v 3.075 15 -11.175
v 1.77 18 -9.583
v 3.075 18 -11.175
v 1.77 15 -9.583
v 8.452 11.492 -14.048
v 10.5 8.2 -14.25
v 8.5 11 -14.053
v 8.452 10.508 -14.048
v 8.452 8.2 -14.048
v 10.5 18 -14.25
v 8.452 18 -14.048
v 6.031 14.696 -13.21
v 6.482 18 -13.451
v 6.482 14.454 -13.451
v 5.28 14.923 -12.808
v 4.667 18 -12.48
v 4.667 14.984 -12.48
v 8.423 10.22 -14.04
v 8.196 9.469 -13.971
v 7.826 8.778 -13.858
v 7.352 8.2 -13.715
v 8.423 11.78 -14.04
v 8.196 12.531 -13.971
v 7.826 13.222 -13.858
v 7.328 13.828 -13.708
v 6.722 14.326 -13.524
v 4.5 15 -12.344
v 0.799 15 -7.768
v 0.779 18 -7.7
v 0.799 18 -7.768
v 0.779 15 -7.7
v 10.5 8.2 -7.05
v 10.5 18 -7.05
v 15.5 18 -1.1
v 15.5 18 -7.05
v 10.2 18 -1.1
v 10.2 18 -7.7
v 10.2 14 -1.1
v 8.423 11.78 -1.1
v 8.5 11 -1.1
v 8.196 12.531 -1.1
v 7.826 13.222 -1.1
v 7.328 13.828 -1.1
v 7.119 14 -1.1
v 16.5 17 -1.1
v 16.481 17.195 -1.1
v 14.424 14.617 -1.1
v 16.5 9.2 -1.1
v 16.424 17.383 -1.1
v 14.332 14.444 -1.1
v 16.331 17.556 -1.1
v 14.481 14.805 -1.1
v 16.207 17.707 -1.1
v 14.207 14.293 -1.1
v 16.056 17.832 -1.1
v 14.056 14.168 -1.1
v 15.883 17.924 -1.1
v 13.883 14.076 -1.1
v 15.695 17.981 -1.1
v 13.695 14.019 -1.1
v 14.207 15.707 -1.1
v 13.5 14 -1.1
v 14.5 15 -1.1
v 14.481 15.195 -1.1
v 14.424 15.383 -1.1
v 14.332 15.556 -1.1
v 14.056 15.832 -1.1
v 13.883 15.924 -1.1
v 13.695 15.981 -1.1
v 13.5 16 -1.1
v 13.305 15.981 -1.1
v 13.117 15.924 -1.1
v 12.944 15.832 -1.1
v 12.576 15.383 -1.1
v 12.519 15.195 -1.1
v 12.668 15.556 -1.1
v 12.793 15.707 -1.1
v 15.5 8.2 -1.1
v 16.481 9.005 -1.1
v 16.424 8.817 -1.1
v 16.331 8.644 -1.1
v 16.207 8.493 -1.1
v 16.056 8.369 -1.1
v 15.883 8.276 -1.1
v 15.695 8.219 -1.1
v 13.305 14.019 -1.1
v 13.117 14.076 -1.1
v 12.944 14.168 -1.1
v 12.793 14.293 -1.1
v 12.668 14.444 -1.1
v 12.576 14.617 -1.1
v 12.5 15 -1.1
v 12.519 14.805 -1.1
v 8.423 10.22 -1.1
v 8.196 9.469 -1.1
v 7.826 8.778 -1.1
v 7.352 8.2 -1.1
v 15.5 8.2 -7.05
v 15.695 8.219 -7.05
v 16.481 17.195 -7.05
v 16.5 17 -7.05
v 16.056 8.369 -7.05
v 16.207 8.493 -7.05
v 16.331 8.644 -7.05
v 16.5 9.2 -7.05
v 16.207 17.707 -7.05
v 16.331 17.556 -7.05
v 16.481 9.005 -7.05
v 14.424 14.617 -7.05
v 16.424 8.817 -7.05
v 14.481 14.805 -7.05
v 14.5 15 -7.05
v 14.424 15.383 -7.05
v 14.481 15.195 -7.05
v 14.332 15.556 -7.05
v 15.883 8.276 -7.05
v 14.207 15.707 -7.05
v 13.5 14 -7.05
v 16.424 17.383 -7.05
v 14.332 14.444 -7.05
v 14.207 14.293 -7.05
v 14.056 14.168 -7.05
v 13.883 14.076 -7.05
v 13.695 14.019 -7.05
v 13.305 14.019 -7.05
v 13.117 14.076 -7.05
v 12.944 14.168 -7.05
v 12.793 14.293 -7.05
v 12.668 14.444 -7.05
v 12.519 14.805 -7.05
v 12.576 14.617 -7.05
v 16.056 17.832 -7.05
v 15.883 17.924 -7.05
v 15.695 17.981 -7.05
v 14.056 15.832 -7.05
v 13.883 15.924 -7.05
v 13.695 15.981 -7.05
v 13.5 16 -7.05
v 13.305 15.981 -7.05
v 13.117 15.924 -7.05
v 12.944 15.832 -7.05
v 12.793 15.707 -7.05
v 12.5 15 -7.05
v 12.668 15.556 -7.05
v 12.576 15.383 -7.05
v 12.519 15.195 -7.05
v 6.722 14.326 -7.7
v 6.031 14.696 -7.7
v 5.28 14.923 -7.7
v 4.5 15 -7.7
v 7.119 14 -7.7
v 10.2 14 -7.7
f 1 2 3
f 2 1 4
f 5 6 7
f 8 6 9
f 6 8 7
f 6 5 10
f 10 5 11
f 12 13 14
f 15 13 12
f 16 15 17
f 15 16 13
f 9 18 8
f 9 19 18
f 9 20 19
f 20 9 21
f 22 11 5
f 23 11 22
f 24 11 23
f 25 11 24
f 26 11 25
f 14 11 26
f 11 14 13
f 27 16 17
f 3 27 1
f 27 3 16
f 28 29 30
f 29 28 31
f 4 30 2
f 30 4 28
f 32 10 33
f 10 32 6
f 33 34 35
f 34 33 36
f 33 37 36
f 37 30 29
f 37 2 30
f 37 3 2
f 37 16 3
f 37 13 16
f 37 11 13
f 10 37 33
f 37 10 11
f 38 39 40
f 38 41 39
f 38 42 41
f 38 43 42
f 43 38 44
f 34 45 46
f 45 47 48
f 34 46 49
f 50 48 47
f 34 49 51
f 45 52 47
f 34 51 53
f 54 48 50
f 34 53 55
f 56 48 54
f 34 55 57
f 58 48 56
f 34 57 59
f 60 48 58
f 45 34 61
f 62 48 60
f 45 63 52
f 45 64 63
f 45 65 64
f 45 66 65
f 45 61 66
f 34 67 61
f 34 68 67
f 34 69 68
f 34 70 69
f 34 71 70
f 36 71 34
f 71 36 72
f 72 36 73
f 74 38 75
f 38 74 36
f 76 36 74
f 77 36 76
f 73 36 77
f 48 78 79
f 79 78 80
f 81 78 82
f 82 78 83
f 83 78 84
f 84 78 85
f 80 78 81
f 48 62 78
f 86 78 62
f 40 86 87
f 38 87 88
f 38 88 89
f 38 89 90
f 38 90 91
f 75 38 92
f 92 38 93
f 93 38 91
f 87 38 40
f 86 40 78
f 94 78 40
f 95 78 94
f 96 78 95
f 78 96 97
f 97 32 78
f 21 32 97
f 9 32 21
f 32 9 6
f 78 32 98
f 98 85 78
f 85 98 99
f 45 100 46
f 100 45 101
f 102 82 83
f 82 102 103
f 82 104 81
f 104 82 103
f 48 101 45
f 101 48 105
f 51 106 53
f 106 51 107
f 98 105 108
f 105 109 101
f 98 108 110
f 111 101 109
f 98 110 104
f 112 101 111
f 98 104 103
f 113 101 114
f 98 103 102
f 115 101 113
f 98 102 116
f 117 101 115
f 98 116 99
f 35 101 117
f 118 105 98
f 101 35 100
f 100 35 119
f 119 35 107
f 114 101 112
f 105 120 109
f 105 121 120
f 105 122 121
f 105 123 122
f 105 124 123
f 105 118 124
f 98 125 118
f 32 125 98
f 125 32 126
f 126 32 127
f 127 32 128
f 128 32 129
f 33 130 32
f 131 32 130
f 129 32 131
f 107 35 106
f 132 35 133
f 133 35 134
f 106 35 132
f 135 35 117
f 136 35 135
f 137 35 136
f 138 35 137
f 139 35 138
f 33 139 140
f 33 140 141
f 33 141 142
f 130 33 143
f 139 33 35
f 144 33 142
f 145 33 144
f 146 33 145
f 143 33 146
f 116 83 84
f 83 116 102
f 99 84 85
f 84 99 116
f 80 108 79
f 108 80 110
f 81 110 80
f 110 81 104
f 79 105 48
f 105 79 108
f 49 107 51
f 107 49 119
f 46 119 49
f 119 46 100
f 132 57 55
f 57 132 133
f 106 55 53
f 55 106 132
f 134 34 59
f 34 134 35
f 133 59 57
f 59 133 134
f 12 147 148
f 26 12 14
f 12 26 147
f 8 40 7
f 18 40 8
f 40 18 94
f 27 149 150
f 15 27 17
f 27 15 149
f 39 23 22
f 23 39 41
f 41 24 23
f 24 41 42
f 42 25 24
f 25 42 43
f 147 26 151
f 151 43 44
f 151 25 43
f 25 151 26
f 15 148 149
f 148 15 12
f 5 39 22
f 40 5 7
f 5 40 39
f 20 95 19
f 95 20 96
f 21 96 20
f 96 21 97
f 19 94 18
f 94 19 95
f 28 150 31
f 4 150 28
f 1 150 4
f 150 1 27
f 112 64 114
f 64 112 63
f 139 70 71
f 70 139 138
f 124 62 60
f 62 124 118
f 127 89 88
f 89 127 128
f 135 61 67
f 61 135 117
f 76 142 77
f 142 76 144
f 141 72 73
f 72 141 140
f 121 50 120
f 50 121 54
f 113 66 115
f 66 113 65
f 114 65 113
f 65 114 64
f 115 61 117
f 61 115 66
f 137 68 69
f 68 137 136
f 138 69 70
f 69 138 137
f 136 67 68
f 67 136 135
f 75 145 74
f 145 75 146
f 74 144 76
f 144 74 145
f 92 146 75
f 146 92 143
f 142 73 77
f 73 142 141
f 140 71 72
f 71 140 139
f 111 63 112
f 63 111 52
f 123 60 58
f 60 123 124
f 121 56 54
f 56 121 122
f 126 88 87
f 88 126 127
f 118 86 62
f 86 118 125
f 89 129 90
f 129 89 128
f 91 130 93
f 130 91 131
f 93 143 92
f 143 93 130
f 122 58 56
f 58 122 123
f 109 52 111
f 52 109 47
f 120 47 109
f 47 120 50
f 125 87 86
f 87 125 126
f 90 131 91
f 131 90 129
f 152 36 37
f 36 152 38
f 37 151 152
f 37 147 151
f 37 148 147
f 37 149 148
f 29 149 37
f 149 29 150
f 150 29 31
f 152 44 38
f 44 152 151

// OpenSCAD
//lol here's a power/mode button support

//notes from mvp print:
//-cut entire front face for mode button
//-add 1mm fudge room around parts.
//-add a 1mm z depth to connectors
//-remove 2.2mm from the extension "height".

//notes from mvp2 print:
//-still need 2.2mm extra thickness on support.

$fn=32;

// hclearance left of cartridge area inside shell
// measured 10.75mm

pcbclearance=1.1;
hclearance=10.5;
vclearance=14.25;
stackclearance=7.2;

supportplatethickness=vclearance-pcbclearance-stackclearance;
vsupport=(supportplatethickness+hclearance)-vclearance;
echo(supportplatethickness);
echo(vsupport);

//translate([-modex,-10,-vclearance])
//color("blue") cube([modex,modey,vclearance]);
//
//translate([-modex,modey-10,-vclearance])
//color("red") cube([10,10,stackclearance]);

// peg keepout
//D measured 7.58mm
pegD=8;
//Inset measured ~ 4.88mm
pegI=4.5;
//Y
pegY=11;

//mode board
// H
modey=24;
// W
modex=25.5;
// no mount
modexnoflag=21;

noflag=true;

//mode button itself
// H
mbuttx=4;
// W
mbutty=6.5;
// D
mbuttz=vclearance;

//face clearance
facecw=10.5;
facech=7;

// Power Switch
//H
pswz=5.6;
//W measured 12.69mm
pswx=13;
//D 
pswy=7.5;
//Offset
mswo=6;

//Connector
//H
mconz=3.7;
//W
mconx=4.4;
//D
mcony=5.4+.5;
//X Offset
mconox=13.5;
//Y Offset
mconoy=7.8;

//Mounting holes
md=1.8;
//Top X
tx=23.5;
//Top Y
ty=3.5;
//Bot X
bx=16;
//Bot Y
by=16;

//Back board mount hole

bbmx=9;
bbmy=4;

//Back board ports

usbx=10.2;
usby=14.6;
usbz=6.6;

swconx=4.4;
swcony=8.2;
swconz=3.2;

module usbcut() {
    translate([0,pegY+pegD/2-1,-usbz-pcbclearance])
    cube([usbx,usby,usbz]);
}

module swconcut() {
    translate([0,0,-swconz-pcbclearance-vclearance])
    cube([swconx+hclearance+3, swcony, swconz+vclearance]);
}

module backboard_mount() {
    translate([pegI+bbmx,pegY+bbmy,-vclearance])
    cylinder(d=2,h=vclearance);
}

//base_shape();

final_part();

//post placement
//translate([-hclearance,modey+3,-vclearance-pcbclearance])
//cylinder(d=2, h=vclearance);

module final_part() {

    intersection(){
difference() {
    base_shape();
    all_cuts();
    backboard_mount();
    swconcut();
    usbcut();
    //cheat
    translate([0,pegY+bbmy+3,0])
    swconcut();
    //base_block();
}
//        union(){
//        over_cut();
//        over_cut_low();
//        
//        }
    }
}

module base_shape() {
    union() {
        base_block();
        smooth_base();
        //support_tab();
    }
}

module over_cut(){
    translate([-modey/2-1,modex/2-1,-supportplatethickness-pcbclearance])
    cheese(modey+2, modey, supportplatethickness, 2);
}

module over_cut_low(){
    translate([-hclearance/2,modex/2-1,-(vclearance-supportplatethickness-pcbclearance)-supportplatethickness-pcbclearance])
    cheese(hclearance, modey, vclearance-supportplatethickness-pcbclearance, 2);
}


module smooth_base() {
    translate([0,0,-supportplatethickness-pcbclearance])
    hull() {
        
    //top left
//    translate([1,1,0])
//#    cylinder(d=2, h=supportplatethickness);

    //bottom left
//    translate([1,modey-1,0])
//    cylinder(d=2, h=supportplatethickness);

    //top left inside step
//    translate([-1-3,1,0])
//    cylinder(d=2, h=supportplatethickness);

    //bottom left inside step
    translate([0,pegY+bbmy+2,0])
    cylinder(d=2, h=supportplatethickness);

    //bottom left inset
    translate([pegI+bbmx,pegY+bbmy,0])
    cylinder(d=2, h=supportplatethickness);

    //bottom left inset
    translate([pegI+bbmx+2,pegY+bbmy+2,0])
    cylinder(d=2, h=supportplatethickness);

    translate([pegI+bbmx+2,swcony+1,0])
    cylinder(d=2, h=supportplatethickness);

    translate([0,swcony+1,0])
    #cylinder(d=2, h=supportplatethickness);

    //top right
    //translate([-modex+1,1,0])
    //cylinder(d=2, h=supportplatethickness);

    //top right new
//    translate([pegI+bbmx+2,1,0])
//    cylinder(d=2, h=supportplatethickness);
//    
    //top right inset
//    translate([-modex+2,1,0])
//    cylinder(d=2, h=supportplatethickness);


    //right 1st attempt
    //translate([-modex+1,pswy,0])
    //#cylinder(d=2, h=supportplatethickness);

    // bottom hole outlines
//    translate([-bx-1,by-pswy/2+2,0])
//    cylinder(d=2, h=supportplatethickness);
//
//    translate([-bx-1,by+pswy/2-2,0])
//    cylinder(d=2, h=supportplatethickness);

    // top hole outlines
//    translate([-tx-1,ty-pswy/2+2,0])
//    cylinder(d=2, h=supportplatethickness);
//
//    translate([-tx-1,ty+pswy/2-2,0])
//    cylinder(d=2, h=supportplatethickness);
        
    //bottom left
//    translate([-1,modey+3,supportplatethickness-3.75])
//    cylinder(d=2, h=3.75);
    //bottom left inside step
//    translate([-1-3,modey+3,0])
//    cylinder(d=2, h=supportplatethickness);

    }
} //end smooth_base module

module support_tab(){
    translate([0,0,-pcbclearance-supportplatethickness-1.2])
    hull() {
        //tab support
        translate([-hclearance,modey+3,0])
        cylinder(d=4, h=1.2);
        
        //bottom left
        translate([-1,modey-1,0])
        cylinder(d=2, h=1.2);
        
        //bottom left inset
        translate([-1-13,modey-1,0])
        cylinder(d=2, h=1.2);
    }
}

module all_cuts() {
    
//    difference() {
//
//    base_block();

    translate([pegI, pegY, -vclearance]){
        //peg clearance
        cylinder(d=pegD, h=vclearance);
        translate([-pegD,-pegD/2,0])
        //peg extension
        cube([pegD,pegD,vclearance]);
    }
        //mode button cut
//        translate([-mbuttx,modey-mbutty-3,-mbuttz-pcbclearance])
//        cube([mbuttx,mbutty,mbuttz]);

        //mode button face cut
        translate([0-1.5,modey-facecw,-facech-4])
        cube([mbuttx/2,facecw+1,facech+4]);

        //power switch
//        translate([-pswx-mswo,-1,-pswz-pcbclearance])
//        cube([pswx, pswy+pcbclearance, pswz]);

        //connector
//        translate([-mconx-mconox-10,mconoy,-mconz-pcbclearance])
//        cube([mconx+10, mcony, mconz+pcbclearance]);
    
        //connector thru
//      translate([-mconx-mconox-10,mconoy,-(vclearance-hclearance+1)])
//        #cube([mconx+10, mcony, vclearance-hclearance+1]);

        //Mounting holes
//        translate([-tx,ty,-supportplatethickness])
//        cylinder(h=supportplatethickness, d=md);
//        translate([-bx,by,-supportplatethickness])
//        cylinder(h=supportplatethickness, d=md);

        //post placement
        translate([-hclearance,modey+3,-vclearance-pcbclearance])
        cylinder(d=1.8, h=vclearance);

//    } // end difference 
} //end rough part


module base_block(){
    translate([hclearance,0,-vclearance+hclearance]) {
    union() {
        rotate([90,0,180])
        difference(){
            cylinder(h=modey, r=hclearance);

            translate([-hclearance,0,0])
            cube([hclearance*2,hclearance*2,modey]);

            translate([-hclearance*2,-hclearance,0])
            cube([hclearance*2,hclearance*2,modey]);
        }
        
        //base plate
//        translate([-modex+hclearance,0,0])
//        cube([modex, modey, vclearance-hclearance]);
//        translate([hclearance,0,0])
        }
    }
}
        

module cheese(x,y,z,r) {
linear_extrude(height=z) offset(-r) offset(r) offset(r) offset(-r)
    square([x,y], center=true);
}
